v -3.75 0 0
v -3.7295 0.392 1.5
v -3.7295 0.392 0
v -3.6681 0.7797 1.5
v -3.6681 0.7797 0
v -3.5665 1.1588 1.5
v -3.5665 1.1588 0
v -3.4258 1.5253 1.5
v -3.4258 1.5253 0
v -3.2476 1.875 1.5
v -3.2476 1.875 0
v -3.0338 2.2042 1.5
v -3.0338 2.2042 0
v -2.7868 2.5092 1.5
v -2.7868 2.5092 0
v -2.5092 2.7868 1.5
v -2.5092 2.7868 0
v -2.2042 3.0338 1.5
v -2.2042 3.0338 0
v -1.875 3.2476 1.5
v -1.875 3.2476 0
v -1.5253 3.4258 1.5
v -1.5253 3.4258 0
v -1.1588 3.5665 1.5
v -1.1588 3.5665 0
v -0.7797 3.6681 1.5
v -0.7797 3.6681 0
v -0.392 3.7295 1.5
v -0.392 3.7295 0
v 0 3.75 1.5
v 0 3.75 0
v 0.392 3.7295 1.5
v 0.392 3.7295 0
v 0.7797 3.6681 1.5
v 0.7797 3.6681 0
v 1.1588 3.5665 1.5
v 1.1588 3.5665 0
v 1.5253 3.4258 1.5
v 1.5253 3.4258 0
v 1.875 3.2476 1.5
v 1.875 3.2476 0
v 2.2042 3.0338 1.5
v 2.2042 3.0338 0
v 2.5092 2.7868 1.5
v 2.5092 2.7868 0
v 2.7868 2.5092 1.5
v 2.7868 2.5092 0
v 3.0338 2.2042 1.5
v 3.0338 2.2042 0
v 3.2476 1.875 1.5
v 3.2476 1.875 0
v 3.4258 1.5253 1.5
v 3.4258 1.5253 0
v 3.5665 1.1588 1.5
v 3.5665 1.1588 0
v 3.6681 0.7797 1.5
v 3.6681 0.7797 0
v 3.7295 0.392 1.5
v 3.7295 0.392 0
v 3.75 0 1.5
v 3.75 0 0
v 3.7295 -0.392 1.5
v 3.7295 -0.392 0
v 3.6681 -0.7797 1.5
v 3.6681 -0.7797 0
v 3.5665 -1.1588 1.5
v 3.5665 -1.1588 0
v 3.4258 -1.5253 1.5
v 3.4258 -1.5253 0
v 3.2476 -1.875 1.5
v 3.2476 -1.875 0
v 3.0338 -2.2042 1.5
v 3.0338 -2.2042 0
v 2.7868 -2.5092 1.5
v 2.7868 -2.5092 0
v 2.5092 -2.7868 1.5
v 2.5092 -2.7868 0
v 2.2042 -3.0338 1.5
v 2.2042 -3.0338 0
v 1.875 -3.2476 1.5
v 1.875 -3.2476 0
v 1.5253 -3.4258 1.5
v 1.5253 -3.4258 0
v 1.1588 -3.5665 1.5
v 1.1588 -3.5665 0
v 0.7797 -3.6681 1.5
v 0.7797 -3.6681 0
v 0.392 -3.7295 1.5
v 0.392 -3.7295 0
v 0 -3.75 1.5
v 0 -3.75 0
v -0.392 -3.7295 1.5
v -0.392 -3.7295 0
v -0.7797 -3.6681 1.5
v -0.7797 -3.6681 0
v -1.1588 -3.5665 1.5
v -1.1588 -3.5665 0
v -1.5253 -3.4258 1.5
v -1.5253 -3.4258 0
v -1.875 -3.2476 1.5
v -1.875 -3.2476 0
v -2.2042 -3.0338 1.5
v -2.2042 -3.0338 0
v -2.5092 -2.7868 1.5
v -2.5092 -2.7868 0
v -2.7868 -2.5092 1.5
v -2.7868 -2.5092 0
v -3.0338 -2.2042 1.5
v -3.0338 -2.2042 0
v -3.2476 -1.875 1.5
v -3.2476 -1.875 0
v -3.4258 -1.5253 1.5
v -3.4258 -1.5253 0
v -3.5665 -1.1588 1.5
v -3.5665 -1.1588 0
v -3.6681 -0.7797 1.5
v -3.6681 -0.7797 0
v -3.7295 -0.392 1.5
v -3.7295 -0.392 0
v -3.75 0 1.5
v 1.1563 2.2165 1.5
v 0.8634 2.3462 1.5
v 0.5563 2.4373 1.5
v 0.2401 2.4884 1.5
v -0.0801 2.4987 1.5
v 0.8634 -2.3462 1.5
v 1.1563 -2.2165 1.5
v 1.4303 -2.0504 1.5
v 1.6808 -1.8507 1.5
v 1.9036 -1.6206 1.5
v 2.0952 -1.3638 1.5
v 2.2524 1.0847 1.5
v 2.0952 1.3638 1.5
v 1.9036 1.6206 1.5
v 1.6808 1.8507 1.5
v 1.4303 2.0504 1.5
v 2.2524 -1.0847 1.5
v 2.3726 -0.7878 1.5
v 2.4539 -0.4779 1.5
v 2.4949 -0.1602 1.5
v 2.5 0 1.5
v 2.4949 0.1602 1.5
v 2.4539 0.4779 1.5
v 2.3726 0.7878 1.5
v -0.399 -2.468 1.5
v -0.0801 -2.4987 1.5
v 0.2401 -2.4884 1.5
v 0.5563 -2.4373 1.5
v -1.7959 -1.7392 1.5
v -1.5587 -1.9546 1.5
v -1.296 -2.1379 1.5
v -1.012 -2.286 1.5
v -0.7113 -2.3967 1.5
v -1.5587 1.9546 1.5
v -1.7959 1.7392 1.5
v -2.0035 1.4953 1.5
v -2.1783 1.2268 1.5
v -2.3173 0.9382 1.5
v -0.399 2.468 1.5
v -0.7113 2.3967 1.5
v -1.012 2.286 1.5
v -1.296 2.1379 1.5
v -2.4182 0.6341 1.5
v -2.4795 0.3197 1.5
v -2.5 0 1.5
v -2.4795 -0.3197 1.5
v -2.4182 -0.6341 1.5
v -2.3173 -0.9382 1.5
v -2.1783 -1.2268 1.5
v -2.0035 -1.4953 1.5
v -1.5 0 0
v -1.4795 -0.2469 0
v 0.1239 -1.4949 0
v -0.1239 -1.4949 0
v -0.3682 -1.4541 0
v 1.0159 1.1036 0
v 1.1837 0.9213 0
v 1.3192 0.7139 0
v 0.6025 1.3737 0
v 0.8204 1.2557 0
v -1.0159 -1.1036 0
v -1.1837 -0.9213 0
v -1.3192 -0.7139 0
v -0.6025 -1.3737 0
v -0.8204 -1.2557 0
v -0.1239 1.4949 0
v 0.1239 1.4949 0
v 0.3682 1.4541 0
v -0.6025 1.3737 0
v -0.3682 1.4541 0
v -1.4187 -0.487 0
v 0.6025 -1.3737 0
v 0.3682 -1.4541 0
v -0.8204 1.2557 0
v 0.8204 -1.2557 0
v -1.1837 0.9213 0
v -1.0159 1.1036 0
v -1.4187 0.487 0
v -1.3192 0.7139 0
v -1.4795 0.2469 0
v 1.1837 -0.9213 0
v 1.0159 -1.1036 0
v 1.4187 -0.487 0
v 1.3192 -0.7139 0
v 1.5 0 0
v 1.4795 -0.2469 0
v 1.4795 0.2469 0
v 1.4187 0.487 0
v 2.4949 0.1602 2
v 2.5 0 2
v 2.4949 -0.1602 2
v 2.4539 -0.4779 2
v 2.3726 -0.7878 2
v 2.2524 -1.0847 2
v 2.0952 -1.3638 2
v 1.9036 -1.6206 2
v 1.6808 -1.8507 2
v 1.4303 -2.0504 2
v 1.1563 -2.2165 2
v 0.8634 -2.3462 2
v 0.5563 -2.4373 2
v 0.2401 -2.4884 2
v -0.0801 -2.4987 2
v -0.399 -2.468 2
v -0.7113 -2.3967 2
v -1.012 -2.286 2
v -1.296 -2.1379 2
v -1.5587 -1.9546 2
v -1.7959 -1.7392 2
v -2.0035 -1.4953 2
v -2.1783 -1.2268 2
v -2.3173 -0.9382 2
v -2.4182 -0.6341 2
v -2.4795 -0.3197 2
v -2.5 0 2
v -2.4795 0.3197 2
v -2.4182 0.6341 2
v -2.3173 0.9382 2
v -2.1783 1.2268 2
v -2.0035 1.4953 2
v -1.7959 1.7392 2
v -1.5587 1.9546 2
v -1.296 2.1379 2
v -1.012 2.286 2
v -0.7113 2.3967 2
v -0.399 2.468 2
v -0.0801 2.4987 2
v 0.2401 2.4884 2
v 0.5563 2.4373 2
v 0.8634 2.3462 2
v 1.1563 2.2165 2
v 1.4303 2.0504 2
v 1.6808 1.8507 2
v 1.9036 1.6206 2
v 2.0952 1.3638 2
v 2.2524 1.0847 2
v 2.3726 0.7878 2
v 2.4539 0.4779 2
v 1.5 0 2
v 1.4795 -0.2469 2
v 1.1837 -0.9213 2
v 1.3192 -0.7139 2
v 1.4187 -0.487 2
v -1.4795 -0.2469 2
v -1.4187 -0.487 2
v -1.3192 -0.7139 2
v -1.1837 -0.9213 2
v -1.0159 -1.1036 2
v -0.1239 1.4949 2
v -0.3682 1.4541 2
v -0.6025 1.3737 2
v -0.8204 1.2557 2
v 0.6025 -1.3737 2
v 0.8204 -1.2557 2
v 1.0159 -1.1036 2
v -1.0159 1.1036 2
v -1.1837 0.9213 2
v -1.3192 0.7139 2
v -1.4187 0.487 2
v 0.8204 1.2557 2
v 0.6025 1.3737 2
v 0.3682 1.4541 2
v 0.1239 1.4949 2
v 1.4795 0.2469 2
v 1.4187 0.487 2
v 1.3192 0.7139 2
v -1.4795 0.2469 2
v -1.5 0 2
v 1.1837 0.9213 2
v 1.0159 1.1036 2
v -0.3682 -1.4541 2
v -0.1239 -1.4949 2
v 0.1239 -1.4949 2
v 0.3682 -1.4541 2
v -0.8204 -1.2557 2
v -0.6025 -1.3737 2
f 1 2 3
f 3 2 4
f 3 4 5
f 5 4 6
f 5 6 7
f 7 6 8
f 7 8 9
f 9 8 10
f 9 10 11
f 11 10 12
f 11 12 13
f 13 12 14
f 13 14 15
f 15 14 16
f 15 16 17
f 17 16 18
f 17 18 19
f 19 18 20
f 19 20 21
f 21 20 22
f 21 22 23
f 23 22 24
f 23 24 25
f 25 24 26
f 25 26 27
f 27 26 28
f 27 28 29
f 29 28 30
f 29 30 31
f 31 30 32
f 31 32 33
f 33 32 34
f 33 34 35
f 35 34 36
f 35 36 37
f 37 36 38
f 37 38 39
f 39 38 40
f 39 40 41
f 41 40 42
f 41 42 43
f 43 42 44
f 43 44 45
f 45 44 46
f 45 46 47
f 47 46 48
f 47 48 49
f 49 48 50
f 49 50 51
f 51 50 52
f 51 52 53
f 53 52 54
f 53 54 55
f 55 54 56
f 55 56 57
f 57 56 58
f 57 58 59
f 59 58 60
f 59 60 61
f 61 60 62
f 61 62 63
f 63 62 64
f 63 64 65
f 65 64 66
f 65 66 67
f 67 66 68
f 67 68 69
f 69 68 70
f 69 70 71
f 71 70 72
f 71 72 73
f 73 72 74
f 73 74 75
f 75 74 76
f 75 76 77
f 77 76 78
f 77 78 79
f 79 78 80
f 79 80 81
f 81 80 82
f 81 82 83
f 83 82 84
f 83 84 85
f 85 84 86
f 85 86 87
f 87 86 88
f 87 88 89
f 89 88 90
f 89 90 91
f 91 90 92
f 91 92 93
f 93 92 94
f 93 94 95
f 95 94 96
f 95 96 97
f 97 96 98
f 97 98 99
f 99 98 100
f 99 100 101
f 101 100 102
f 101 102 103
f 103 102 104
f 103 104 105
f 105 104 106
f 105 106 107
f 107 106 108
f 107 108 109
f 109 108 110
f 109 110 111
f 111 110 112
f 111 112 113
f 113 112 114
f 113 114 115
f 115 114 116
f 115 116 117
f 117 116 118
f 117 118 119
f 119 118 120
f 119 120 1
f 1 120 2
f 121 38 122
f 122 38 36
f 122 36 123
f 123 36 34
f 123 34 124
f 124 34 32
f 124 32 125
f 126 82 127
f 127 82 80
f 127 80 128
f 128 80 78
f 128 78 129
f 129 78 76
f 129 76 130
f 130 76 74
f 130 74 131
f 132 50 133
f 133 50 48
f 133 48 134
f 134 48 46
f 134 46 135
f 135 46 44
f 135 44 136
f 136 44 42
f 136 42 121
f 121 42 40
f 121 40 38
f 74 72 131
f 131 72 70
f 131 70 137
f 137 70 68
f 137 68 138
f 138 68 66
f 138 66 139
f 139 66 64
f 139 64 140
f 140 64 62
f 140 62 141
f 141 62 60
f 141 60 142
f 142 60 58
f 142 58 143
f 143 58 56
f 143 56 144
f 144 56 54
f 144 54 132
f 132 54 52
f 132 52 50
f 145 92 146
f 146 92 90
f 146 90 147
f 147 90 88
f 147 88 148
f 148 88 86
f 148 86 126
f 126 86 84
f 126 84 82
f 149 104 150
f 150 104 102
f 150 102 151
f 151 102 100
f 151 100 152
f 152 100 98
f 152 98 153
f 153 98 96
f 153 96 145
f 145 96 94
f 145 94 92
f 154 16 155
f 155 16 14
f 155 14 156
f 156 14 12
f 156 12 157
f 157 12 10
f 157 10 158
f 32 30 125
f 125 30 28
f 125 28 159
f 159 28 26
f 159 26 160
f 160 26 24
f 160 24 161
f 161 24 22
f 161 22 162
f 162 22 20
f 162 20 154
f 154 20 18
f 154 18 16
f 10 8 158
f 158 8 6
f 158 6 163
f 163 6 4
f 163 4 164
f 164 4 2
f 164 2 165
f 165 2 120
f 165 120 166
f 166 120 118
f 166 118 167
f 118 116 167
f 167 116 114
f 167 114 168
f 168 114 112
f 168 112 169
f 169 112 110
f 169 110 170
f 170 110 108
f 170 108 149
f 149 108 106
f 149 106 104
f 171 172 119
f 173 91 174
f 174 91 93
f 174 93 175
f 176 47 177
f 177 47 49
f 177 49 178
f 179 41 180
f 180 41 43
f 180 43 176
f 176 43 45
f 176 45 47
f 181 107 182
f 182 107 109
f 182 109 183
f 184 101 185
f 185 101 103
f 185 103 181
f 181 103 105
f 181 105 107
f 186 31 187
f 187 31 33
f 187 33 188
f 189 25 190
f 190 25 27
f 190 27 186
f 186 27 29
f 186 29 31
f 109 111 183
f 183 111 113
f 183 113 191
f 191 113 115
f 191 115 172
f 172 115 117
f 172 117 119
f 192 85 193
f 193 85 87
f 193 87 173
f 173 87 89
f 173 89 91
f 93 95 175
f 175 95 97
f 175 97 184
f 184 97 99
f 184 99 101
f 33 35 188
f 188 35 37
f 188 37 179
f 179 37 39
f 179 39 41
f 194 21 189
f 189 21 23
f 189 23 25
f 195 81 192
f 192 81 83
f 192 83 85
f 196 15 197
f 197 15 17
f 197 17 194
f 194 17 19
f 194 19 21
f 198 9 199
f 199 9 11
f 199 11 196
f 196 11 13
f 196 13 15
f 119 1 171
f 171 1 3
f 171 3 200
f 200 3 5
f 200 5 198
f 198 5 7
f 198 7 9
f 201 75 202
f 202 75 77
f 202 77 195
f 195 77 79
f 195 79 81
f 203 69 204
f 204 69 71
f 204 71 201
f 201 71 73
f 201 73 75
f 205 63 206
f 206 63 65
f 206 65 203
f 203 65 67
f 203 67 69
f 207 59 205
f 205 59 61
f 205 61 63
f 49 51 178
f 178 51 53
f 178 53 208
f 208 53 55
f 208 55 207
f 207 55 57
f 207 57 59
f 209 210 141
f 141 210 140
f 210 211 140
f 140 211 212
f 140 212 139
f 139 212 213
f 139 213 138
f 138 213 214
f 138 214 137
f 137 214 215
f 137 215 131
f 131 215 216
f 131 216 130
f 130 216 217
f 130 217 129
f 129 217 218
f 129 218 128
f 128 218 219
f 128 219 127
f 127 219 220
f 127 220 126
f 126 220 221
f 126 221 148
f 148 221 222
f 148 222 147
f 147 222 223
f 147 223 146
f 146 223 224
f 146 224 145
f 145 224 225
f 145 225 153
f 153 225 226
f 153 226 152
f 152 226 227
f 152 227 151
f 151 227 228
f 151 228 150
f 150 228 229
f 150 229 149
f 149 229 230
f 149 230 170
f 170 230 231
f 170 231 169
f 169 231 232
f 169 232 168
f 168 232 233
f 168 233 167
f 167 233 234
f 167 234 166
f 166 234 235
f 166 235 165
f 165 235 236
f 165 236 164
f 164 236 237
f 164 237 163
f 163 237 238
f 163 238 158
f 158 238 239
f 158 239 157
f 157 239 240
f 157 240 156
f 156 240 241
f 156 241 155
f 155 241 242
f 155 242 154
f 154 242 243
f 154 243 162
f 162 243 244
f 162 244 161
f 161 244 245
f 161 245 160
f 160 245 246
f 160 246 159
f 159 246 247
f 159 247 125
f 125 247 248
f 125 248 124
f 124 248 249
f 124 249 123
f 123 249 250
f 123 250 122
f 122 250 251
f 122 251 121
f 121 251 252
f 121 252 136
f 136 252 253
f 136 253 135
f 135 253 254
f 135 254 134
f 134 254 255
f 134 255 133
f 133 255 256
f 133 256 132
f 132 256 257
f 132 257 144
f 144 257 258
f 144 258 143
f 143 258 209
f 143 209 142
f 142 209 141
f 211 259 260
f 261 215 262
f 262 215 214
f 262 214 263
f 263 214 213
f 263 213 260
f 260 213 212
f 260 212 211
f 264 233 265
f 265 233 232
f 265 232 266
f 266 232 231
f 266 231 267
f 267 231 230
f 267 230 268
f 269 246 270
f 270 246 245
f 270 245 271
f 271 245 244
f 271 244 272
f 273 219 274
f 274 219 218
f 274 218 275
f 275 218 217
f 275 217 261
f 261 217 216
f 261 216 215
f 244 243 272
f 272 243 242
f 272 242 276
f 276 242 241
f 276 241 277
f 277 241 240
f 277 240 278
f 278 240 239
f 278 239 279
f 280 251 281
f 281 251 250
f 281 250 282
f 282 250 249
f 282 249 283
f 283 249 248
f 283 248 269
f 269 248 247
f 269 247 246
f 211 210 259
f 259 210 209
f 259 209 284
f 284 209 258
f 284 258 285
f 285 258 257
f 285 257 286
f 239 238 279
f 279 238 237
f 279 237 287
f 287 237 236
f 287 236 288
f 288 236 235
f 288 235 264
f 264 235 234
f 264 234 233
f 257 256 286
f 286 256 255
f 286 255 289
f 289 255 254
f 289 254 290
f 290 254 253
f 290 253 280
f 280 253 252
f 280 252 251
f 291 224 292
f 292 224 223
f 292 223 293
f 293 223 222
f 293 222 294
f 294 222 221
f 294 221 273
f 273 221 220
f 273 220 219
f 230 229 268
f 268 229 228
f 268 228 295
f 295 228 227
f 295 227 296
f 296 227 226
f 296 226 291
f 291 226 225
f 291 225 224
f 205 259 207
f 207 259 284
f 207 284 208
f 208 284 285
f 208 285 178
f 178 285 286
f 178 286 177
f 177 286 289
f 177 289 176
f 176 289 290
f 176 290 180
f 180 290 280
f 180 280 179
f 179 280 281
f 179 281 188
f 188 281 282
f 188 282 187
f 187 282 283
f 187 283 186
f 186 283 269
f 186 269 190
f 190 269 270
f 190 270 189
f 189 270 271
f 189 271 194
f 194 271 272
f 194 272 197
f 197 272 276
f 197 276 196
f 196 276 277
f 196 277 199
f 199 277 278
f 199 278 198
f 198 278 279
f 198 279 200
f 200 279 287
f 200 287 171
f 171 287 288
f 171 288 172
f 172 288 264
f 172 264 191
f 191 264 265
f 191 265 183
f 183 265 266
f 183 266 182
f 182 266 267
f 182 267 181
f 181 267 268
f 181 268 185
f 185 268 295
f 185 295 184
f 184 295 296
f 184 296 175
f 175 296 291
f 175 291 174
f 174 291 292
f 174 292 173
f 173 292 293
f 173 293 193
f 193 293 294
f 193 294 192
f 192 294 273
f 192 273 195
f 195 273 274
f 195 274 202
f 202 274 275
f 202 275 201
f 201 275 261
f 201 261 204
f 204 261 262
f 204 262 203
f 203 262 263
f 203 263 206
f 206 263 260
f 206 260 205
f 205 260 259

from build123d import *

# Parameters (mm, degrees)
SKETCH1_R               = 3.75
BOSS_EXTRUDE2_DEPTH     = 1.5
SKETCH2_R               = 2.5
BOSS_EXTRUDE3_DEPTH     = 0.5
SKETCH3_R               = 1.5
CUT_EXTRUDE2_DEPTH      = 1
CUT_EXTRUDE2_DEPTH_BACK = 3


with BuildPart() as part:
    # Sketch1 → Boss-Extrude2 (new body)
    with BuildSketch(Plane.XY):
        Circle(SKETCH1_R)
    extrude(amount=BOSS_EXTRUDE2_DEPTH)

    # Sketch2 → Boss-Extrude3 (add)
    with BuildSketch(Plane.XY.offset(1.5)):
        Circle(SKETCH2_R)
    extrude(amount=BOSS_EXTRUDE3_DEPTH)

    # Sketch3 → Cut-Extrude2 (cut, two sides)
    with BuildSketch(Plane.XY.offset(2)) as cut_extrude2_sk:
        Circle(SKETCH3_R)
    extrude(amount=CUT_EXTRUDE2_DEPTH, mode=Mode.SUBTRACT)
    extrude(cut_extrude2_sk.sketch, amount=-CUT_EXTRUDE2_DEPTH_BACK, mode=Mode.SUBTRACT)


solid = part.part
